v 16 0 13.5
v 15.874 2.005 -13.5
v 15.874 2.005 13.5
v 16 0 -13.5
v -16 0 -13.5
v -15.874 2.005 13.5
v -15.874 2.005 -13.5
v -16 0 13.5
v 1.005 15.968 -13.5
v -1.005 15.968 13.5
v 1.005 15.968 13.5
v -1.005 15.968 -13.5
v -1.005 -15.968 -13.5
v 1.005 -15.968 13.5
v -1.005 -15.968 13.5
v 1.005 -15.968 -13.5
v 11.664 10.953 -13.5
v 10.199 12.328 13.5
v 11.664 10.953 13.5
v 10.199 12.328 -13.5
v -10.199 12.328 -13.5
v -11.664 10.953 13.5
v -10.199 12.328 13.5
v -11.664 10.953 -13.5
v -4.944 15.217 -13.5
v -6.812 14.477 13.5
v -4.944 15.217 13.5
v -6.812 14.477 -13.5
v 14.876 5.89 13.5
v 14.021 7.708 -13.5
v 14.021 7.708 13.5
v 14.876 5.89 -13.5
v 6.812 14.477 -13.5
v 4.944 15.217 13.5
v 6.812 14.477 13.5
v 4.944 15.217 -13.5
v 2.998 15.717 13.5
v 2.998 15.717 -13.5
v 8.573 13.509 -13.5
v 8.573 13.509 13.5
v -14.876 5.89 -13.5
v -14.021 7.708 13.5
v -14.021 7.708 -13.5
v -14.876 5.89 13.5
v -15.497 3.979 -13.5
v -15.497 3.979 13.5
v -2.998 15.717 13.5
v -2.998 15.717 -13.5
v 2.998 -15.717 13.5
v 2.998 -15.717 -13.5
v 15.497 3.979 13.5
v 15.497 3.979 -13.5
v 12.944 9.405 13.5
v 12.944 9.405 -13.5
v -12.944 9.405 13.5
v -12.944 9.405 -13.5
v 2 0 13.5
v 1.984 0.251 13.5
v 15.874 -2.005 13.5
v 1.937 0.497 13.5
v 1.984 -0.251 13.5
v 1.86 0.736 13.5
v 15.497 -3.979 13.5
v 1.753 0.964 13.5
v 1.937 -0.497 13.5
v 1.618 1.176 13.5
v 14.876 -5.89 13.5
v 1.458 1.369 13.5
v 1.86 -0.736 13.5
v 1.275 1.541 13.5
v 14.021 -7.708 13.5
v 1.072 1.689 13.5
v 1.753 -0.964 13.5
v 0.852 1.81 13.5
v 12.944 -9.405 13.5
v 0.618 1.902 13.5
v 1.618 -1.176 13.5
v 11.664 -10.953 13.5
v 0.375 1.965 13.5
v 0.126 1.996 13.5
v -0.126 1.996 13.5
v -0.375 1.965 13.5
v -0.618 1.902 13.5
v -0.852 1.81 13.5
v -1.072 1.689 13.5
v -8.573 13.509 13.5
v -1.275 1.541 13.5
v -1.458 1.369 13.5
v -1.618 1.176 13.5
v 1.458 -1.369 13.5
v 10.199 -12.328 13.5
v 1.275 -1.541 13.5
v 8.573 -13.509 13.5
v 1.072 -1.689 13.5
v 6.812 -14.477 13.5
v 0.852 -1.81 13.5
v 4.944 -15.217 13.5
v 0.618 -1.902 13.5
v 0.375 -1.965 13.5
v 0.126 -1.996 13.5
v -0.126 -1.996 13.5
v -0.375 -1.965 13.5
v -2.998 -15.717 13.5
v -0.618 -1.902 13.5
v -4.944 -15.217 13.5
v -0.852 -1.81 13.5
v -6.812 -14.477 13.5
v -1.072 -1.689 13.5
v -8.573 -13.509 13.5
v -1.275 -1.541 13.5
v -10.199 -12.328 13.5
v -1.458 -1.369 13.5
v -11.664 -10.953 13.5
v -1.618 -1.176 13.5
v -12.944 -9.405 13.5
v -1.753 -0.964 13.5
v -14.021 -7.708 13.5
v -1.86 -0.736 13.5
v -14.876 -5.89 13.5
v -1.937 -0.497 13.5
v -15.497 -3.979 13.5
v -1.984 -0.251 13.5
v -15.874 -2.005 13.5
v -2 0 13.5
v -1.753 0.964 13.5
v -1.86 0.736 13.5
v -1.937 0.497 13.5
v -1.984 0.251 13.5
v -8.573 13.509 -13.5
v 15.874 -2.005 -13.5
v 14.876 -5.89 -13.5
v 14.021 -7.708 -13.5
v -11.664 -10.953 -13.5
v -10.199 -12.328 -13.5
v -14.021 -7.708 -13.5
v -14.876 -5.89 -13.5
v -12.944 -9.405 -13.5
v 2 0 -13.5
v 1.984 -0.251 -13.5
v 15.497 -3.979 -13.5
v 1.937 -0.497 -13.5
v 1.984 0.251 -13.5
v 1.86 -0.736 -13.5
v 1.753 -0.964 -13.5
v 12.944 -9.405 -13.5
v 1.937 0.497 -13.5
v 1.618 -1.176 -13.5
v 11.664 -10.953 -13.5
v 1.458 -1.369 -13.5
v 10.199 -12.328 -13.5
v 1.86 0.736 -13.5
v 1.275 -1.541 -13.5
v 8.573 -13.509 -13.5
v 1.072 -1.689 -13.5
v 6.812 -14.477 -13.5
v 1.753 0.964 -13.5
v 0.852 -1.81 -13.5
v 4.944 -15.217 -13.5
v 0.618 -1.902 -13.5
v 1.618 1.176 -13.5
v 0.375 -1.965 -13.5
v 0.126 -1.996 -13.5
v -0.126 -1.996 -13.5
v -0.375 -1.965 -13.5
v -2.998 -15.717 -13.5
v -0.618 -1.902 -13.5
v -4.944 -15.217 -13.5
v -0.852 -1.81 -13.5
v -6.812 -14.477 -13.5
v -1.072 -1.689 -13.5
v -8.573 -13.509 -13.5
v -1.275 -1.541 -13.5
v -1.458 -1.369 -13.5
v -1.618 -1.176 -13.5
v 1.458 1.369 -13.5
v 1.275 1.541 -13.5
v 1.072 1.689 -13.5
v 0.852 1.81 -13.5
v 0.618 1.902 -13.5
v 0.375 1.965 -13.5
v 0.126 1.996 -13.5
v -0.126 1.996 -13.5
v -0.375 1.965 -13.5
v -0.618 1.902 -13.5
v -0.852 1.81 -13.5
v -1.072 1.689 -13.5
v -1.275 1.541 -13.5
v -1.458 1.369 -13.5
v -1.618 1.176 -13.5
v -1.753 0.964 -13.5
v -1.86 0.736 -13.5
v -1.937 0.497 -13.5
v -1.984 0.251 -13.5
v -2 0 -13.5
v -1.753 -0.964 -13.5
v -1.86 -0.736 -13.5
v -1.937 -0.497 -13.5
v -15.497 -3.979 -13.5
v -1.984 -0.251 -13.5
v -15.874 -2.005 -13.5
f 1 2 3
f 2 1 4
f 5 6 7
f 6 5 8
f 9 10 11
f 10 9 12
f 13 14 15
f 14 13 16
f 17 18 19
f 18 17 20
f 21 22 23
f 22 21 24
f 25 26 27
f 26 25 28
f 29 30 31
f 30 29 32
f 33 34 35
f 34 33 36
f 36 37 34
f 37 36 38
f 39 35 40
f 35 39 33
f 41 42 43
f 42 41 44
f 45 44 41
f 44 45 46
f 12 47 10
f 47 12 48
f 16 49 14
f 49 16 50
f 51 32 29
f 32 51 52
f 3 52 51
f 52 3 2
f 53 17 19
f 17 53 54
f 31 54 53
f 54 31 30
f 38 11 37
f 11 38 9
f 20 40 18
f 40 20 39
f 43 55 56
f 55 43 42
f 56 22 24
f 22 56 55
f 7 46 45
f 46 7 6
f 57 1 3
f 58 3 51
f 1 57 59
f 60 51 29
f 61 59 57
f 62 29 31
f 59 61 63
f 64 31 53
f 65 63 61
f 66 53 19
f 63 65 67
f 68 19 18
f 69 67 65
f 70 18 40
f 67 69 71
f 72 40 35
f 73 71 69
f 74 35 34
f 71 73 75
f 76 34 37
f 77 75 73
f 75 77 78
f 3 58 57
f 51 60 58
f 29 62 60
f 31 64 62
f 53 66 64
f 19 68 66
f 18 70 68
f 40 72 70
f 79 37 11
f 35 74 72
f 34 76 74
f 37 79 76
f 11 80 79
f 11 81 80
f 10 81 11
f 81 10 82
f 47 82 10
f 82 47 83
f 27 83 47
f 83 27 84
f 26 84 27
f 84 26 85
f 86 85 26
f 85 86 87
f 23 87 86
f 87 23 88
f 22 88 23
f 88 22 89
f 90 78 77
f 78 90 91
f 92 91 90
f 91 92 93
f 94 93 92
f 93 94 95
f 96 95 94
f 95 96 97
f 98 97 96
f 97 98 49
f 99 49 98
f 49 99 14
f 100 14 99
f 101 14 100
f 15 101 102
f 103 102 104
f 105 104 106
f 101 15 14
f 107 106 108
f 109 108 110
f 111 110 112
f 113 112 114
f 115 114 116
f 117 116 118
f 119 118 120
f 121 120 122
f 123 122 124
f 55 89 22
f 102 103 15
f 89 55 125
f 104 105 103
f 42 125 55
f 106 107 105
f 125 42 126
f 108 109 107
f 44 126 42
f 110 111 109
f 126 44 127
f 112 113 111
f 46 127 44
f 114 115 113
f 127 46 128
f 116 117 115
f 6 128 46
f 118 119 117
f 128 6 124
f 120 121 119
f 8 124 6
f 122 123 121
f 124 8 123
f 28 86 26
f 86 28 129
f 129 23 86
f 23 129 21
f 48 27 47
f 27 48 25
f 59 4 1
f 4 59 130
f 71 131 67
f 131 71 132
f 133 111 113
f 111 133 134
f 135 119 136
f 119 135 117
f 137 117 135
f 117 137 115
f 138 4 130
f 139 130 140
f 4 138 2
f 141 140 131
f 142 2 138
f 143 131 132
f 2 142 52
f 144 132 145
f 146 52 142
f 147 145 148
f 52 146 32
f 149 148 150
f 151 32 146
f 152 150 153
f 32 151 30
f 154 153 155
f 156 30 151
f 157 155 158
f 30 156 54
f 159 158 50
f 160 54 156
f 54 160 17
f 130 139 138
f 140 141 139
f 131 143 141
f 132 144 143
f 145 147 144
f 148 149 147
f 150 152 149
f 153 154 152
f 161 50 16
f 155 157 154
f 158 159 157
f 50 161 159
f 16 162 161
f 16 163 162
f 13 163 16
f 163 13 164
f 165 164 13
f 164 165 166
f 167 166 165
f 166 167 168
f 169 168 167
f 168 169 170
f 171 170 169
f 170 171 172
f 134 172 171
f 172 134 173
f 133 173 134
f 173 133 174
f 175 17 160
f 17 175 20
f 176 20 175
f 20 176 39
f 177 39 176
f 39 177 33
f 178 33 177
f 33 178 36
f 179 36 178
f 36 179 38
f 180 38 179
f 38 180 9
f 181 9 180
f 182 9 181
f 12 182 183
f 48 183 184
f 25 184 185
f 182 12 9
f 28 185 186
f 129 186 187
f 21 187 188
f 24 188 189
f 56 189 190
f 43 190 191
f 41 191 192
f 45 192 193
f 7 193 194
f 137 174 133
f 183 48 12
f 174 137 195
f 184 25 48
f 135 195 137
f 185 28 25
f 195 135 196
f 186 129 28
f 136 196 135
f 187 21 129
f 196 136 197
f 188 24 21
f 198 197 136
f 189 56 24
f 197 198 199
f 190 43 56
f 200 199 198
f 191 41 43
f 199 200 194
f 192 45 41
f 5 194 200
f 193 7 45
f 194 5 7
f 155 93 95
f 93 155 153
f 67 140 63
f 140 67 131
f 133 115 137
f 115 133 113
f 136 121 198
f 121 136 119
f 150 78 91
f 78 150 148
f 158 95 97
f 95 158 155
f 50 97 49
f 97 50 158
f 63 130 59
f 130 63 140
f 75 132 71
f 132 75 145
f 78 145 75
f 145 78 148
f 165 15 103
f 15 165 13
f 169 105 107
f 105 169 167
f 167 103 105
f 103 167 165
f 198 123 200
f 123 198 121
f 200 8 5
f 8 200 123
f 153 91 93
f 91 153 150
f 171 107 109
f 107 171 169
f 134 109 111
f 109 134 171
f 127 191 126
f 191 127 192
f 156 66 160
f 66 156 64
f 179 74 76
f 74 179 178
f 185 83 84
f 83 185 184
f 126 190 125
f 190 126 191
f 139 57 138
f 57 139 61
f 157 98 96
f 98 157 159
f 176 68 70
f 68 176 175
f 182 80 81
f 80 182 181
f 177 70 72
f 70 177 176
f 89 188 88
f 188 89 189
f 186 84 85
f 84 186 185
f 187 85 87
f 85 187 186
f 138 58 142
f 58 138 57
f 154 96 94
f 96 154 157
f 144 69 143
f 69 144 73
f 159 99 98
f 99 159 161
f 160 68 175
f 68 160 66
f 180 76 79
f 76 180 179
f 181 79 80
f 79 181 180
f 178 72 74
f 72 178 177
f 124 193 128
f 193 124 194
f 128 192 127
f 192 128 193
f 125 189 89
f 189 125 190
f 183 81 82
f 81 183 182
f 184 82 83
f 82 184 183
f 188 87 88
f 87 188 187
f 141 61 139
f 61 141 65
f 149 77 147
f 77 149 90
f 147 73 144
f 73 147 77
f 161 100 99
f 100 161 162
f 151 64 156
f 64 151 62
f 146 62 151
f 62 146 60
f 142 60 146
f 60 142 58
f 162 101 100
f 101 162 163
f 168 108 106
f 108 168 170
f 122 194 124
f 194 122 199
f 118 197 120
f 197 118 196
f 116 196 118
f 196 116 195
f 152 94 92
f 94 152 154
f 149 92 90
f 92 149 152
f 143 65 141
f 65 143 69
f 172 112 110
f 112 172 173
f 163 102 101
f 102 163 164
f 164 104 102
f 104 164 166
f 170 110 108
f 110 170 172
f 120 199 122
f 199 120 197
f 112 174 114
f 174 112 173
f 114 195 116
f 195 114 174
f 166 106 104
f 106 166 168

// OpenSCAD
$fn = 50;


difference() {
	union() {
		translate(v = [0, 0, -13.5000000000]) {
			cylinder(h = 27, r = 16.0000000000);
		}
	}
	union() {
		translate(v = [0, 0, -100.0000000000]) {
			cylinder(h = 200, r = 2);
		}
	}
}
